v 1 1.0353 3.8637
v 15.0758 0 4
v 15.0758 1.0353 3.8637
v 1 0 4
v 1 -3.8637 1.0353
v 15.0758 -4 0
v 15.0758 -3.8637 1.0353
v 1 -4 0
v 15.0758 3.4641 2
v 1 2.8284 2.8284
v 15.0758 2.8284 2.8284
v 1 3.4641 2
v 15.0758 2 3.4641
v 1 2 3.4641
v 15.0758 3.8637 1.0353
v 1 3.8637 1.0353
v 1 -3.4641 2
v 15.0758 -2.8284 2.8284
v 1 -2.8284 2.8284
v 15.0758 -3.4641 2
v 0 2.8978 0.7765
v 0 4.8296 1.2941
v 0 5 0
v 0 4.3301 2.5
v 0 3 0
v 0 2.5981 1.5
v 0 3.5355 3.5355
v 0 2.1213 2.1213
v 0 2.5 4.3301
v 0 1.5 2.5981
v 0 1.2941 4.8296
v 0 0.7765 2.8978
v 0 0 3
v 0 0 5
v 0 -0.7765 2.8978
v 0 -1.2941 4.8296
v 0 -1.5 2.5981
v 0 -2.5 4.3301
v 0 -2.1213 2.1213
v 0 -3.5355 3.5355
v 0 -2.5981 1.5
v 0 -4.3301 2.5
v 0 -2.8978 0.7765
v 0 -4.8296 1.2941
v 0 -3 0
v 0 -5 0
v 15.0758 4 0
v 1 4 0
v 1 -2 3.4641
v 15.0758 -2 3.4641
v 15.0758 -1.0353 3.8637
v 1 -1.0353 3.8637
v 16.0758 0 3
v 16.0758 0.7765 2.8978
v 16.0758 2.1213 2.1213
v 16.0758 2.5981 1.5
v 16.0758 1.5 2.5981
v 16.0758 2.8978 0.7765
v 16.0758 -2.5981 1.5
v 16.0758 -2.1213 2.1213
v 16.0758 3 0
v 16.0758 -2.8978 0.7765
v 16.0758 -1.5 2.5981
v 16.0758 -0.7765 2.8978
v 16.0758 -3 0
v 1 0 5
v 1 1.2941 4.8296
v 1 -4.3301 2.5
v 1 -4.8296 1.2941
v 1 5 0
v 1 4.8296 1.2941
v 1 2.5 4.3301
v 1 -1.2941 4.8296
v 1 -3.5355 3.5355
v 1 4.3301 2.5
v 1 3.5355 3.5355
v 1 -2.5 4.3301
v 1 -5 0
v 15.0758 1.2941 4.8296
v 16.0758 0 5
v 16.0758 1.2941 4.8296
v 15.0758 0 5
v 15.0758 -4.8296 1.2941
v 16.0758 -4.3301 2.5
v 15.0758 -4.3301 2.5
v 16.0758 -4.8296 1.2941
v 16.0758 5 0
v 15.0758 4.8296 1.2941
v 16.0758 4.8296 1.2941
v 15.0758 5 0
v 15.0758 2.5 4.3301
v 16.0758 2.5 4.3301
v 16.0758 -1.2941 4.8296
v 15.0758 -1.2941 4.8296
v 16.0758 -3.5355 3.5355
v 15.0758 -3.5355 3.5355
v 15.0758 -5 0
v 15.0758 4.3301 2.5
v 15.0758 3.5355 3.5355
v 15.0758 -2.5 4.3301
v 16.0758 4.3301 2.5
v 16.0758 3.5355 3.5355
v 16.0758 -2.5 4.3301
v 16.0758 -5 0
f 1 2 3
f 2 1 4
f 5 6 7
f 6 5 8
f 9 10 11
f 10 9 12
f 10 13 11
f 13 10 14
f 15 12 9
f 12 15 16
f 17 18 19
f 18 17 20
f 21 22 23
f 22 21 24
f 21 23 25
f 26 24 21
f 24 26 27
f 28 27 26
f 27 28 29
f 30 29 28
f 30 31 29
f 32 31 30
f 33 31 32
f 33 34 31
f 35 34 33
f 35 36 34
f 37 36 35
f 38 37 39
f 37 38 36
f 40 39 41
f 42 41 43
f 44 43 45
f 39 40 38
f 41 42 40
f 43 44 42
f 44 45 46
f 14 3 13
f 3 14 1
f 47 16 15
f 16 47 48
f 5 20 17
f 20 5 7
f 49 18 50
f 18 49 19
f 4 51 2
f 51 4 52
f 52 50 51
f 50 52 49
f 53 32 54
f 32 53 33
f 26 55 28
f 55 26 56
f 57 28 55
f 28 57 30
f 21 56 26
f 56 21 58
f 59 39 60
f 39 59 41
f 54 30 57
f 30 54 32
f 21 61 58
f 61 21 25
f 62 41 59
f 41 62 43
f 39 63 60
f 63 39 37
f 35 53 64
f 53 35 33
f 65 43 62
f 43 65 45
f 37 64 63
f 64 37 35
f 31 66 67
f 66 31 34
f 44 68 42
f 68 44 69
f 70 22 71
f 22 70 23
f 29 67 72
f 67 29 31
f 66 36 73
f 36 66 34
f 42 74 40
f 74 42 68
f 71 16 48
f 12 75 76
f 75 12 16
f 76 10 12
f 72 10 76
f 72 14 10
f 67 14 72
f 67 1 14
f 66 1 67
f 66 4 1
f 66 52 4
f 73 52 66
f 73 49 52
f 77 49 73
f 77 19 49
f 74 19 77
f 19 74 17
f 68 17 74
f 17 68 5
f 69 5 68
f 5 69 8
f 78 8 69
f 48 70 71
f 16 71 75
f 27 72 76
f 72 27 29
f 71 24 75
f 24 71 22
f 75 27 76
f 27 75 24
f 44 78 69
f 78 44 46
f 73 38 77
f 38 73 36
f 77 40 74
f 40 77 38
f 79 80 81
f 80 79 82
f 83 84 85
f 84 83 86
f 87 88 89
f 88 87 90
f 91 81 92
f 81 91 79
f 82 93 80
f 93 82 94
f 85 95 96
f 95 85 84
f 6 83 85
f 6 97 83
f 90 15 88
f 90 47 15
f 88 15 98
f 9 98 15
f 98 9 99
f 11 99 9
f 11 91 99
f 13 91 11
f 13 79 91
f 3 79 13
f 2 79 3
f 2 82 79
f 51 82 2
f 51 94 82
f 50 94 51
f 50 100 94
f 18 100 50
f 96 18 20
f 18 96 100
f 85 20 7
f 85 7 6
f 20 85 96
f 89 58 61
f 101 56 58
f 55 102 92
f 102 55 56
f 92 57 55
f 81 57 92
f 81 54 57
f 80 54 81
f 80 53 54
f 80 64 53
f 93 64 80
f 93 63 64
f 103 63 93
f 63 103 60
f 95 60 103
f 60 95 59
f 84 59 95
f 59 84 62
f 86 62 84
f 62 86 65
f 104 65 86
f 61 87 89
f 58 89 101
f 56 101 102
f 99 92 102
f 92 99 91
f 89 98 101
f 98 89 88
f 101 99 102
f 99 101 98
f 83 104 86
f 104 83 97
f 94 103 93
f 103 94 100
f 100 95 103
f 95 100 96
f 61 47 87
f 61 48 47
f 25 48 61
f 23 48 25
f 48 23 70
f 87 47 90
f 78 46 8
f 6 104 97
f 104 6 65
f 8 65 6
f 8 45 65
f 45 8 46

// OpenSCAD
// file: ../build_environments.scad
// build_environments.scad: modules to build level sections
//

module pool(diameter=10.0, wall_height=2.0, step_width=3.0, connections=[])
{
    difference() {
        union() {
        difference() {
            cylinder(h=0.5,r1=diameter+step_width,r2=diameter+step_width,$fn=48);
            translate([0,0,-0.1])
                cylinder(h=0.7,r1=diameter,r2=diameter,$fn=48);
        }
        difference() {
            cylinder(h=wall_height,r1=diameter+step_width+1.0,r2=diameter+step_width+1.0,$fn=48);
            translate([0,0,-0.1])
                cylinder(h=wall_height+0.2,r1=diameter+step_width,r2=diameter+step_width,$fn=48);
        }
        }
    
        for (c = connections)
        {
            rotate([0,90,0]) {
                angle = atan2(c[1],c[0]);
                rotate([-angle,0,0]) {
                    cylinder(h=diameter+5.0,r1=c[2],r2=c[2],$fn=48);
                }
            }
        }
    }
}

module straight(length=10.0, width=2.0, dy1=0.0, dy2=0.0, dz=0.0)
{
    dims = [0, 0, 0, 0, 0, (dz/length)];
    matrix = [
        [ 1, dims[0], dims[1], 0 ],
        [ dims[2], 1, dims[4], 0 ],
        [ dims[5], dims[3], 1, 0 ],
        [ 0, 0, 0, 1 ]
    ];
    multmatrix(matrix)
    difference() {
        translate([dy1,0,0])
        union() {
            rotate([0,90,0]) {
                difference() {
                    cylinder(h=(length-dy1-dy2),r1=width+1.0,r2=width+1.0,$fn=24);
                    translate([0,0,-0.1])
                        cylinder(h=(length-dy1-dy2+0.2),r1=width,r2=width,$fn=24);
                }
                difference() {
                    cylinder(h=1.0,r1=width+2.0,r2=width+2.0,$fn=24);
                    translate([0,0,-0.1])
                        cylinder(h=1.2,r1=width,r2=width,$fn=24);
                }
                translate([0,0,(length-dy1-dy2)-1.0]) {
                    difference() {
                        cylinder(h=1.0,r1=width+2.0,r2=width+2.0,$fn=24);
                        translate([0,0,-0.1])
                            cylinder(h=1.2,r1=width,r2=width,$fn=24);
                    }
                }
            }
        }
        translate([0,0,-(2*width+4.0)/2])
            cube([3*length,3*length,2*width+4.0],center=true);
    }
}

module curve(p0=[0,0], center=[0,0], dir=1, angle=0.0, width=2.0)
{
    radius = sqrt((p0[0]-center[0])*(p0[0]-center[0]) + (p0[1]-center[1])*(p0[1]-center[1]));
    if (dir == 0) {
        difference() {
            rotate([0,0,-90])
            difference() {
                rotate_extrude(angle = angle, convexity = 10, $fn=32)
                    translate([radius, 0, 0])
                        circle(r = width+1.0,$fn=24);
                rotate([0,0,-1.0])
                    rotate_extrude(angle = angle+2.0, convexity = 10, $fn=32)
                        translate([radius, 0, 0])
                            circle(r = width,$fn=24);
            }
            translate([0,0,-(2*width+4.0)/2])
                cube([5*radius,5*radius,2*width+4.0],center=true);
        }
    }
    else {
        difference() {
            rotate([0,0,90])
            difference() {
                rotate_extrude(angle = -angle, convexity = 10, $fn=32)
                    translate([radius, 0, 0])
                        circle(r = width+1.0,$fn=24);
                rotate([0,0,1.0])
                    rotate_extrude(angle = -angle-2.0, convexity = 10, $fn=32)
                        translate([radius, 0, 0])
                            circle(r = width,$fn=24);
            }
            translate([0,0,-(2*width+4.0)/2])
                cube([5*radius,5*radius,2*width+4.0],center=true);
        }
    }

}

// test pool
//pool(diameter=12.0000, wall_height=3.0000, step_width=3.0000, connections=[[0.0000,-26.0000,2.0000], [23.6074,0.0000,2.0000]]);

// test straight, slope
//straight(length=26.0000, width=2.0000, dy1=11.8322, dy2=6.7082, dz=0.0000);
//straight(length=29.1549, width=12.0000, dy1=0.0000, dy2=0.0000, dz=-15.0000);

// test curve
//curve(p0=[23.6074, 0.0000], center=[23.6074, 5.0000], dir=0, angle=60.1011, width=2.0000);
//curve(p0=[33.6426, 12.4219], center=[37.9771, 9.9295], dir=1, angle=120.4627, width=2.0000);
// main file
use <../build_environments.scad>;
straight(length=16.0758, width=3.0000, dy1=0.0000, dy2=0.0000, dz=0.0000);
